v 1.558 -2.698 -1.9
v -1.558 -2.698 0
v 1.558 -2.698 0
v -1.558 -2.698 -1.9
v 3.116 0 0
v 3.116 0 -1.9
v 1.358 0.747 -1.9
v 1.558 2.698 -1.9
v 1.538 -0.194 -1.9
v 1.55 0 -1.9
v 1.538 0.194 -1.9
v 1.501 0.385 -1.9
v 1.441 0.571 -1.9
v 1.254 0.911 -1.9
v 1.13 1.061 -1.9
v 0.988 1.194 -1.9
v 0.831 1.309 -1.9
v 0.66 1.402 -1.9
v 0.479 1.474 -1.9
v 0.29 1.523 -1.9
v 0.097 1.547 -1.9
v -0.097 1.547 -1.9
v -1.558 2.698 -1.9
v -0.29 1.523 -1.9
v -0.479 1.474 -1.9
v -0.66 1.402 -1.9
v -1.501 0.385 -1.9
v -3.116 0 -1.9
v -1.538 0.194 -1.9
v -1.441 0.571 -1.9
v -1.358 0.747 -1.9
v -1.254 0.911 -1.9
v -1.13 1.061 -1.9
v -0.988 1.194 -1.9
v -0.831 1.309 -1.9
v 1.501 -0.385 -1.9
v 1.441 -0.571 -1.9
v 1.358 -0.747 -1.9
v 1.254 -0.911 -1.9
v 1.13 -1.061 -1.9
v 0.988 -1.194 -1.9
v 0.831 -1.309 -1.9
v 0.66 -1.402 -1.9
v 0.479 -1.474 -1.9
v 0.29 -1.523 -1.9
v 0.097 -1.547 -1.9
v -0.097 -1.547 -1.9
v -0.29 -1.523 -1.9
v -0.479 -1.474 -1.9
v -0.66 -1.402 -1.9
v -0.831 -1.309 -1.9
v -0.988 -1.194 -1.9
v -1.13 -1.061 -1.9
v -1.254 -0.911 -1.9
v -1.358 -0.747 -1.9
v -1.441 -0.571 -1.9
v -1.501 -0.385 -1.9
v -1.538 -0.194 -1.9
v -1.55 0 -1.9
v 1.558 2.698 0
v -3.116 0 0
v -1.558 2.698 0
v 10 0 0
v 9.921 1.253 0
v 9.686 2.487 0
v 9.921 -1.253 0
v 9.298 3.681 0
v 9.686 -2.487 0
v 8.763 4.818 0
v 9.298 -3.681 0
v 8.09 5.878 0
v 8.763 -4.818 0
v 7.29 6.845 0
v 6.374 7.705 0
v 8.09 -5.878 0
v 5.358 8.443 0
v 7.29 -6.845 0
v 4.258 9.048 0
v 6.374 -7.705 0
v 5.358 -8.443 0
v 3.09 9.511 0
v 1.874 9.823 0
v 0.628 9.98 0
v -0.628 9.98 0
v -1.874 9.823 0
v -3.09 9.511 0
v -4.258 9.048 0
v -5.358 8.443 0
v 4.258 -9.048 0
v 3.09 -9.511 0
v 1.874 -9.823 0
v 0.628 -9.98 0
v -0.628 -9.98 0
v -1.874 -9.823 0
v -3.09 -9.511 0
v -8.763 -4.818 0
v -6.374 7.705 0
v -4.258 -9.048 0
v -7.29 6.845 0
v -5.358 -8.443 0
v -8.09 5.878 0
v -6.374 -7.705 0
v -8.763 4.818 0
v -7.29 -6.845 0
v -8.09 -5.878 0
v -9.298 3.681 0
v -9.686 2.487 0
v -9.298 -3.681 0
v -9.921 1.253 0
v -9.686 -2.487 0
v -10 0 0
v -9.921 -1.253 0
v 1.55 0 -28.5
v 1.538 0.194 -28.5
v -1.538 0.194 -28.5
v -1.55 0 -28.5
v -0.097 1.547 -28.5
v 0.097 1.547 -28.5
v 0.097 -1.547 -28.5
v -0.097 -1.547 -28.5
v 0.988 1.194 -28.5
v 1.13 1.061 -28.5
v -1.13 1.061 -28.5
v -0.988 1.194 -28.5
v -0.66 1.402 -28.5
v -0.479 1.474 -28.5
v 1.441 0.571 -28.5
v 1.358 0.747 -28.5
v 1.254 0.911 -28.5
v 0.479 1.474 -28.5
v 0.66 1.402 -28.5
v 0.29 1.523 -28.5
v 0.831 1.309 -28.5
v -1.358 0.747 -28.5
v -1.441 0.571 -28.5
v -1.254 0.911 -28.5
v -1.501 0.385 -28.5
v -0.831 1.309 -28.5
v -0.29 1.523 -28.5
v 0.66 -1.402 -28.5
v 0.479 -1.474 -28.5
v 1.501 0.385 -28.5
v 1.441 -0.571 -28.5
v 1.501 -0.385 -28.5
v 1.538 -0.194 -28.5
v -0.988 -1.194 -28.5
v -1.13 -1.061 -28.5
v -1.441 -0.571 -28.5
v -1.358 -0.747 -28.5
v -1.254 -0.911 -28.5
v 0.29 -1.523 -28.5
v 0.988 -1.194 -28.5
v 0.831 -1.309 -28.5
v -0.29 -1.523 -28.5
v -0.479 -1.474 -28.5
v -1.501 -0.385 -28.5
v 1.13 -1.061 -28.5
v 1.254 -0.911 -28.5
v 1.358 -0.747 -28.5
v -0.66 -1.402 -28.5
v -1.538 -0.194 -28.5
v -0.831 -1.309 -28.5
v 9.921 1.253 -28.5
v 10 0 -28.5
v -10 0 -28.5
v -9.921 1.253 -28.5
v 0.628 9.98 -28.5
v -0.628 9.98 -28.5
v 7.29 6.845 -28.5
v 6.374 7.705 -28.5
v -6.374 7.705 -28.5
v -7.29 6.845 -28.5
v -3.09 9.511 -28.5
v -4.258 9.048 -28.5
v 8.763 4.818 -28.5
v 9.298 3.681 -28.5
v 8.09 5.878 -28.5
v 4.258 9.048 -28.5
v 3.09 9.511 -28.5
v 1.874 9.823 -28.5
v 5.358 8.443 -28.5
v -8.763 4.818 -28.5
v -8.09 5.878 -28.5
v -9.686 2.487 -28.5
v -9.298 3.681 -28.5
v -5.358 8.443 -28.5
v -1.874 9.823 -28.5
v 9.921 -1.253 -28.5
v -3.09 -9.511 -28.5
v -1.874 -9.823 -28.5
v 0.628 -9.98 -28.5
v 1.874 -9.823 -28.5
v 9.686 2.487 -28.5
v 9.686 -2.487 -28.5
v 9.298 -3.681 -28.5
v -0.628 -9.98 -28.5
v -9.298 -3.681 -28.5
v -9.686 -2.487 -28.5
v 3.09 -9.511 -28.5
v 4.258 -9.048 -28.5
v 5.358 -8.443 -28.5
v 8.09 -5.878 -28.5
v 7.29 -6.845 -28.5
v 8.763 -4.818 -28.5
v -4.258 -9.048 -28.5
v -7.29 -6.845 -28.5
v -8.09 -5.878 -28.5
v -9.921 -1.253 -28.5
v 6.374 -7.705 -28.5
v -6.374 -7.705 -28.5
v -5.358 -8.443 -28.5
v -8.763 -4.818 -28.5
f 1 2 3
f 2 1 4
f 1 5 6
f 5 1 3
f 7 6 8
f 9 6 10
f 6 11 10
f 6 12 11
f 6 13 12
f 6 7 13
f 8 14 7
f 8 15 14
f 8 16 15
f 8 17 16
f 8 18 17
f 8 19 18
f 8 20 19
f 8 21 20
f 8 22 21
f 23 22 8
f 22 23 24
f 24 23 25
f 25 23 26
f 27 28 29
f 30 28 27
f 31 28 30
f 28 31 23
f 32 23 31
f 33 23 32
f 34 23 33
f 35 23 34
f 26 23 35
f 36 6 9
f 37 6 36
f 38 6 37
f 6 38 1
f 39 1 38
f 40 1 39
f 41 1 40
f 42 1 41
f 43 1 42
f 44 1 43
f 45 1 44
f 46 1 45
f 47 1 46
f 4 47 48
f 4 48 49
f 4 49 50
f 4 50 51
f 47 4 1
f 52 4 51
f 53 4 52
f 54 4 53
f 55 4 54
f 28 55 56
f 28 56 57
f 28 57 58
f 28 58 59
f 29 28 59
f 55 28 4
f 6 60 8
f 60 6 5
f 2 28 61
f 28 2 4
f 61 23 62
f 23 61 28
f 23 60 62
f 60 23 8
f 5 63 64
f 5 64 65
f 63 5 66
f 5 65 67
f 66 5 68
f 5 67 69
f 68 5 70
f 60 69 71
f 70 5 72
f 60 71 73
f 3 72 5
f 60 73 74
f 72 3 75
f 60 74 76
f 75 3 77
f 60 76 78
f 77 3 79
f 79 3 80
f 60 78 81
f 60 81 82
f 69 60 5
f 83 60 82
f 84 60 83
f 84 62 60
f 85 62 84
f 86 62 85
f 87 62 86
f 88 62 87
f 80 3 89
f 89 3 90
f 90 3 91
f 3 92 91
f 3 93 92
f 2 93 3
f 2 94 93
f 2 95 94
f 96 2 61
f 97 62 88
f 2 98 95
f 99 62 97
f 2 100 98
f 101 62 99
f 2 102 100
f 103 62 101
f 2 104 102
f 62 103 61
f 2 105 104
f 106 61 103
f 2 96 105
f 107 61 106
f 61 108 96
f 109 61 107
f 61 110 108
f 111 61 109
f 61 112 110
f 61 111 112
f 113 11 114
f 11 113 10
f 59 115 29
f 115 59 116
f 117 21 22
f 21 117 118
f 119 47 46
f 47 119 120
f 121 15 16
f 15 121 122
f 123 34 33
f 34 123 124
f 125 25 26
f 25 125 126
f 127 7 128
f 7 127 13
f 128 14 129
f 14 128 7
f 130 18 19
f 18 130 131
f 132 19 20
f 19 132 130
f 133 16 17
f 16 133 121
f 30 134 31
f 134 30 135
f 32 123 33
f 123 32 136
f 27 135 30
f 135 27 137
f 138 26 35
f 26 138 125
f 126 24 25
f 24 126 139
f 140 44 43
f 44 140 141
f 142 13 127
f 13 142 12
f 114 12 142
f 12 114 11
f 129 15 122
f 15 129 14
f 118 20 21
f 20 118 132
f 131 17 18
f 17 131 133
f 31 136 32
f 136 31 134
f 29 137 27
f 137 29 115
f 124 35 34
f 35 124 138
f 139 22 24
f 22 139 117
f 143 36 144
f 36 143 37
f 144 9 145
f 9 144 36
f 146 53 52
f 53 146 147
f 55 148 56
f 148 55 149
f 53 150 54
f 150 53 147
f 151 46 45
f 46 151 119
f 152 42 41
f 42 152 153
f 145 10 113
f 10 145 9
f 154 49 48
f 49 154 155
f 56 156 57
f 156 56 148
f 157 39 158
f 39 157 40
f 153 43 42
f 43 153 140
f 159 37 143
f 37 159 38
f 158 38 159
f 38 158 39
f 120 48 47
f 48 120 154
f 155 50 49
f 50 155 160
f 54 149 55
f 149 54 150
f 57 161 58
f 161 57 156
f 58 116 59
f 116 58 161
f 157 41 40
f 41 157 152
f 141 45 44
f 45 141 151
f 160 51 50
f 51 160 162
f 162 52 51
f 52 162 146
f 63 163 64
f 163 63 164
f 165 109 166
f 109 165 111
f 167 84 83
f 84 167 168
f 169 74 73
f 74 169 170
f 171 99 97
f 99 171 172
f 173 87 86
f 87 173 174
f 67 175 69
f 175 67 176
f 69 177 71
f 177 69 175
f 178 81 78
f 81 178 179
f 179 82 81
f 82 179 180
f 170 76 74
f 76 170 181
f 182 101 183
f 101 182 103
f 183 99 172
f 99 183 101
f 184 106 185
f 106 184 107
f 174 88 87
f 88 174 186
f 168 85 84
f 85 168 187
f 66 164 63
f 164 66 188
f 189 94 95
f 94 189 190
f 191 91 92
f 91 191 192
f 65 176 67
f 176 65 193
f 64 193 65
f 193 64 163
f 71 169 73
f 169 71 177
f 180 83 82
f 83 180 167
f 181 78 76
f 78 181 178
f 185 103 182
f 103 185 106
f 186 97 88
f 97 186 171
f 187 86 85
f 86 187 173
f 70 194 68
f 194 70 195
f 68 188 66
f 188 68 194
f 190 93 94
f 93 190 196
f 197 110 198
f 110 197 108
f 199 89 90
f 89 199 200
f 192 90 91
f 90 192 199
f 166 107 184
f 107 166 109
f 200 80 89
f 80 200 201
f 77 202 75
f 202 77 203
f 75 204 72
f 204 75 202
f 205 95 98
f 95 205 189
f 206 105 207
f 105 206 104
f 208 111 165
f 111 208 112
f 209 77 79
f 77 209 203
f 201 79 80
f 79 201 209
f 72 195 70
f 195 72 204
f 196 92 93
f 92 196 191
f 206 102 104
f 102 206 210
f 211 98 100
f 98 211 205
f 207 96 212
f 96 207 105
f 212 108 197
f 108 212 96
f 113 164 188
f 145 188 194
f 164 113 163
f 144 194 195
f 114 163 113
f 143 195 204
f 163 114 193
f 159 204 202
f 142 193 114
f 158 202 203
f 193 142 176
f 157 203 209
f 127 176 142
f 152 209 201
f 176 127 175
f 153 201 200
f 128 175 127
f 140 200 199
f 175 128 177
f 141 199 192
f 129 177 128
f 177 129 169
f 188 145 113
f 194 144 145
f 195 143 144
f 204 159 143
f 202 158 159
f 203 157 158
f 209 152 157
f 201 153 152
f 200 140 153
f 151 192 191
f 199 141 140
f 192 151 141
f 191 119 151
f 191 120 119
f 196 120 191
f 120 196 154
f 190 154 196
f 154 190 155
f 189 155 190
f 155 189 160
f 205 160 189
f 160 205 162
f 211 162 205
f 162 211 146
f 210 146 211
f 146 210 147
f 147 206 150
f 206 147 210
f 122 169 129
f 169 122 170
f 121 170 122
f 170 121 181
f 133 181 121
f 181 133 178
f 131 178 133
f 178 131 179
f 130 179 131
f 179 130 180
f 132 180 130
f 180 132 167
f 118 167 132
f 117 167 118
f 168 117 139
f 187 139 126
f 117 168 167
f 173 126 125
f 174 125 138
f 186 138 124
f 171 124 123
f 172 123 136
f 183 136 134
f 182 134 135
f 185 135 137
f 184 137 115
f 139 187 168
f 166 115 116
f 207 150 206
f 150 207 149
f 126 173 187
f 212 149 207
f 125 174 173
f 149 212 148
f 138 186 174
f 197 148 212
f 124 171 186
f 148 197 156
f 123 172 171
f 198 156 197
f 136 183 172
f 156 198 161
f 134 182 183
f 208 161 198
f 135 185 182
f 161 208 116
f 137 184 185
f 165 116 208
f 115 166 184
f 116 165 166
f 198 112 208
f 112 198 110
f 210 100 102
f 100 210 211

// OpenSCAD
$fn = 50;


difference() {
	union() {
		translate(v = [0, 0, -28.5000000000]) {
			cylinder(h = 28.5000000000, r = 10.0000000000);
		}
	}
	union() {
		translate(v = [0, 0, 0]) {
			rotate(a = [0, 0, 0]) {
				difference() {
					union() {
						translate(v = [0, 0, -1.9000000000]) {
							linear_extrude(height = 1.9000000000) {
								polygon(points = [[3.1158000000, 0.0000000000], [1.5579000000, 2.6983619531], [-1.5579000000, 2.6983619531], [-3.1158000000, 0.0000000000], [-1.5579000000, -2.6983619531], [1.5579000000, -2.6983619531]]);
							}
						}
					}
					union();
				}
			}
		}
		#translate(v = [0, 0, -100.0000000000]) {
			cylinder(h = 200, r = 1.5500000000);
		}
	}
}
